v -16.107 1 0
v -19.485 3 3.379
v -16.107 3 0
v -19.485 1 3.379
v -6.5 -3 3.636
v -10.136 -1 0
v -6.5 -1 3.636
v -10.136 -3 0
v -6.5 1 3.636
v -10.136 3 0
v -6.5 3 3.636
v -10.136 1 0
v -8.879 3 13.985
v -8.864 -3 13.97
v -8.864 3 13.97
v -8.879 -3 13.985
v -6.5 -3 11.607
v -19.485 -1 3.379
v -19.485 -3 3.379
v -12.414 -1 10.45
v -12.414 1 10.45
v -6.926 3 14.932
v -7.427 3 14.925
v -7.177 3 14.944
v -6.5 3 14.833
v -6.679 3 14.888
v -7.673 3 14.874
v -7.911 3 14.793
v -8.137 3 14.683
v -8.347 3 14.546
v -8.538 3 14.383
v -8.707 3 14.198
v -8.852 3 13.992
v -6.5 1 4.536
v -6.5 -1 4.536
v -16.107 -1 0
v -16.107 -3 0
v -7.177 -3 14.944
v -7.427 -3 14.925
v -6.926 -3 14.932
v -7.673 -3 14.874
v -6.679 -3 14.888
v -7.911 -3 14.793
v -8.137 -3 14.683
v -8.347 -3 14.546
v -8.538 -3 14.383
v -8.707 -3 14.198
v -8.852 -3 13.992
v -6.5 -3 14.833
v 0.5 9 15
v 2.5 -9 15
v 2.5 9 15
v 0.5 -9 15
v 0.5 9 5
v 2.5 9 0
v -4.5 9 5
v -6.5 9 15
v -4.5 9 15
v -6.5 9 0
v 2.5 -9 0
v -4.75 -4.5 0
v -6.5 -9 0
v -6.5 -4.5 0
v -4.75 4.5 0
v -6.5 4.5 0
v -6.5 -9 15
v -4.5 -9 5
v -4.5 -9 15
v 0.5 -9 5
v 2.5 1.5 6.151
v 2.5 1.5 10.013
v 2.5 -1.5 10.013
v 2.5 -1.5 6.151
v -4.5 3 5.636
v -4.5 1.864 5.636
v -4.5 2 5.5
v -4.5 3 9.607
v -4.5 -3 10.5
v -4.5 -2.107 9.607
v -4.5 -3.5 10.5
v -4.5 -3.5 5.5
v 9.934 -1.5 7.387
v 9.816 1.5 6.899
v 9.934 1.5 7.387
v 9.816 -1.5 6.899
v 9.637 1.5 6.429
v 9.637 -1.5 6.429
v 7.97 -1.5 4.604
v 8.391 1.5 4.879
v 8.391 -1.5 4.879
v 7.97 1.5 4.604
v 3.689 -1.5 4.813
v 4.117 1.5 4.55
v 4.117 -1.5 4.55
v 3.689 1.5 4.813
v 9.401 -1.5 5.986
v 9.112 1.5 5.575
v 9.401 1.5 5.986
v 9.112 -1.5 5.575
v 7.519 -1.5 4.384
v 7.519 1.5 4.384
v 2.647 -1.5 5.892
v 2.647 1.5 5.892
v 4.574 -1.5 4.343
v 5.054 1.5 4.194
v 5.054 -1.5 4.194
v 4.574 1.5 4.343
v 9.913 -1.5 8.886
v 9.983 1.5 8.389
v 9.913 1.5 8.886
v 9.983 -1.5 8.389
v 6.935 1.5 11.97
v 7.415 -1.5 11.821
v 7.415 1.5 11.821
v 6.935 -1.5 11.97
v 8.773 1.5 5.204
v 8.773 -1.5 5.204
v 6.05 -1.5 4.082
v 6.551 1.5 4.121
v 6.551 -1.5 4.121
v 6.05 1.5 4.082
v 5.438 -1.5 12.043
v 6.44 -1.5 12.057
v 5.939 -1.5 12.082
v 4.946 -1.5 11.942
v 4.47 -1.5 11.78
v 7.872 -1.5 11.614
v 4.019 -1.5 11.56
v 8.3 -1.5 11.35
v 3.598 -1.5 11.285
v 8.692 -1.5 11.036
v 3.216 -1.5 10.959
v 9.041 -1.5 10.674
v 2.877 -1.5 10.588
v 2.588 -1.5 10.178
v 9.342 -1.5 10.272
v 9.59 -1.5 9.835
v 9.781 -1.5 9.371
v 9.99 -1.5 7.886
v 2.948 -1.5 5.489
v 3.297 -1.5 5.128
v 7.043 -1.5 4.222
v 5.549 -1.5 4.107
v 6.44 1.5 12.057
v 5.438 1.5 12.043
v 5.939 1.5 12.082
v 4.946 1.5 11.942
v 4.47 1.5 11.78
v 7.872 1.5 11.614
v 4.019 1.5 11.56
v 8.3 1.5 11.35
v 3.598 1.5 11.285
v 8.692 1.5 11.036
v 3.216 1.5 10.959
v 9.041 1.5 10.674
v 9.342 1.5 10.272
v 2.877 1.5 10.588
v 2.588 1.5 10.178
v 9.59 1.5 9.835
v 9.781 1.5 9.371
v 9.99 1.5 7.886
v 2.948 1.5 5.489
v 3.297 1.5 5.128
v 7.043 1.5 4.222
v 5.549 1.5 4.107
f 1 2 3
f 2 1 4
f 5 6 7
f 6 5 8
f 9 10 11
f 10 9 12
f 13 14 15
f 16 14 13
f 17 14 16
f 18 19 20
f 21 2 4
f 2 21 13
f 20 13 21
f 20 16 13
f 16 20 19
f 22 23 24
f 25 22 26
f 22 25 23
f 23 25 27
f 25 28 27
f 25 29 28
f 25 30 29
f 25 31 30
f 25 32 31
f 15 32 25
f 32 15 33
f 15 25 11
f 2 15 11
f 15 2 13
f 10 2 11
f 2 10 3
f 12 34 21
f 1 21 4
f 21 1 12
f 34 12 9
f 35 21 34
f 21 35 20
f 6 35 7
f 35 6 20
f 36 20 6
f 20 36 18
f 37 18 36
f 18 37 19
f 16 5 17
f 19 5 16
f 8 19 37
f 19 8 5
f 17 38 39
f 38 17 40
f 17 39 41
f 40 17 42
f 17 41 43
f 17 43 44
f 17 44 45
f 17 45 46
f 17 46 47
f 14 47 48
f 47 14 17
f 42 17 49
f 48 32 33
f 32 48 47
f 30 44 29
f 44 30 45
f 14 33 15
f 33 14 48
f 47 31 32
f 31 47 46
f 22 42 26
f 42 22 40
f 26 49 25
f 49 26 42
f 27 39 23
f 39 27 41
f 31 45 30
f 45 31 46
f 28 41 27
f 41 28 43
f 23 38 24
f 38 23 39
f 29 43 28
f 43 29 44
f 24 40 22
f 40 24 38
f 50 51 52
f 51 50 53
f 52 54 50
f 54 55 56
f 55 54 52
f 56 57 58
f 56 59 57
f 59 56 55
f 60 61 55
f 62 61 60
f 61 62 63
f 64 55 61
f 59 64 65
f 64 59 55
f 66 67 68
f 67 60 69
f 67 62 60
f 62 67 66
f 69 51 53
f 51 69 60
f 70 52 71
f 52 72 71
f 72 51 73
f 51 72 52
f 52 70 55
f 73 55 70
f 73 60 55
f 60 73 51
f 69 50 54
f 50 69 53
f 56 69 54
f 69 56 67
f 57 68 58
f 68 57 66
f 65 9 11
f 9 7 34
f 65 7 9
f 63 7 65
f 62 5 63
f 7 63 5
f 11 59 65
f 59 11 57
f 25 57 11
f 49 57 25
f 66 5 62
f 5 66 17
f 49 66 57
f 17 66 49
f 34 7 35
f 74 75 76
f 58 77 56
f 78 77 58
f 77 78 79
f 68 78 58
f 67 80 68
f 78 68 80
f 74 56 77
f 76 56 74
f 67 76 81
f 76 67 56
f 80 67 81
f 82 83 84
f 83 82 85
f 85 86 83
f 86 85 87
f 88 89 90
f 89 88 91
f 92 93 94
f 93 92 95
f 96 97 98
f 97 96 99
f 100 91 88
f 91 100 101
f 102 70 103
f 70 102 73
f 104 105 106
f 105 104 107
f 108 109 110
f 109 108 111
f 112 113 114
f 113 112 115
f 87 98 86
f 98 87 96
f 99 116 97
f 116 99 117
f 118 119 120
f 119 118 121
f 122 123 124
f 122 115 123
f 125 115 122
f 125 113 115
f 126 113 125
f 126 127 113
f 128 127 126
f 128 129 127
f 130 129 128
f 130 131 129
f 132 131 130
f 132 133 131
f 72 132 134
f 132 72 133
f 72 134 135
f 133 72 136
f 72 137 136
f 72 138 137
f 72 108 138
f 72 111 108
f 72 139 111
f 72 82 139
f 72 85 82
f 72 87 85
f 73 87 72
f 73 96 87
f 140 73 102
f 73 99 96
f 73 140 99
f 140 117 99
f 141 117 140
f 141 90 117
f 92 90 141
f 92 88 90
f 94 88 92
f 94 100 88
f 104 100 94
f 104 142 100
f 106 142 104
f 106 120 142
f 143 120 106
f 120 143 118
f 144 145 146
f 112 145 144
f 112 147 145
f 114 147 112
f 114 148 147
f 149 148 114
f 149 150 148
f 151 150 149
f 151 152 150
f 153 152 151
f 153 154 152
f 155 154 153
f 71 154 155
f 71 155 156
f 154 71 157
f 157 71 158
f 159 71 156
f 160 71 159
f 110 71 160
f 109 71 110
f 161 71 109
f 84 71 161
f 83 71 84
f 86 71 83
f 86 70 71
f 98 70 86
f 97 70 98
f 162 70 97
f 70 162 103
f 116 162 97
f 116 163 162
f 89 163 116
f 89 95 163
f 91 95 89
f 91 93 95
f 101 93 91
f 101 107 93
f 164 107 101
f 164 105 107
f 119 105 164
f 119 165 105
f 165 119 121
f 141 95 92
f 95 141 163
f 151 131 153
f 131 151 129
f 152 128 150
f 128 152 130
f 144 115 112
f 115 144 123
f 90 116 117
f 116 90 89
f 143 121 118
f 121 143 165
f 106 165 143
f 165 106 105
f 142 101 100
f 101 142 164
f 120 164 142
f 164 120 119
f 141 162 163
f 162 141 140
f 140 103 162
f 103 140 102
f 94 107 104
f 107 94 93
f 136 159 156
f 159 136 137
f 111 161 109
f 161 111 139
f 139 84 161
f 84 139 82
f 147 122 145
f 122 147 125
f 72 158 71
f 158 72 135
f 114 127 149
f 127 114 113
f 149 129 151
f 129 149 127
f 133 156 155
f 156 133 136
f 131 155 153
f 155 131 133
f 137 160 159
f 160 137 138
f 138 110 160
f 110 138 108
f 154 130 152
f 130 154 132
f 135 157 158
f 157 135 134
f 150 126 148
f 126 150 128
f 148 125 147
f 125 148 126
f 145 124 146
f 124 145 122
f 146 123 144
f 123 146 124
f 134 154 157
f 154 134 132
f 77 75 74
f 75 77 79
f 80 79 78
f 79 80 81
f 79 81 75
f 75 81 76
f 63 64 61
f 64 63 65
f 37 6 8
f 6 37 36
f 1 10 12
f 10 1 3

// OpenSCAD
$fn = 50;

rotate ([180, 0, 0]) difference(){
    union(){
        translate([0,0,-7.5]) {
            rotate([90, -90, 0]){
                translate([0,-1.5,0]) cube([15,2,18], true);
                translate([5,2,0]) cube([5,5.5,18], true);
                translate([0,5.5,0]) cube([15,,2,18], true);
            }
        }

        translate([-11,-2,-5.5]) {
            rotate([0, 45, 0]){
                cube([15,2,9], true);
                translate([5,2,0]) cube([5,2,9], true);
                translate([0,4,0]) cube([15,,2,9], true);
            }
            rotate([90, -10, 0]) translate([2.5,-8,-2]) cylinder(h=6,r=2, center=true);
        }
        
        rotate([90, -10, 0]) translate([4.5,-9,0]) cylinder(h=3,r=4, center=true);
    }
    
    translate([-2.75,-1,-8]) cube([3.5,9,5], true);
    translate([-10.75,0,2.5]) cube([12,9,5], true);
}
